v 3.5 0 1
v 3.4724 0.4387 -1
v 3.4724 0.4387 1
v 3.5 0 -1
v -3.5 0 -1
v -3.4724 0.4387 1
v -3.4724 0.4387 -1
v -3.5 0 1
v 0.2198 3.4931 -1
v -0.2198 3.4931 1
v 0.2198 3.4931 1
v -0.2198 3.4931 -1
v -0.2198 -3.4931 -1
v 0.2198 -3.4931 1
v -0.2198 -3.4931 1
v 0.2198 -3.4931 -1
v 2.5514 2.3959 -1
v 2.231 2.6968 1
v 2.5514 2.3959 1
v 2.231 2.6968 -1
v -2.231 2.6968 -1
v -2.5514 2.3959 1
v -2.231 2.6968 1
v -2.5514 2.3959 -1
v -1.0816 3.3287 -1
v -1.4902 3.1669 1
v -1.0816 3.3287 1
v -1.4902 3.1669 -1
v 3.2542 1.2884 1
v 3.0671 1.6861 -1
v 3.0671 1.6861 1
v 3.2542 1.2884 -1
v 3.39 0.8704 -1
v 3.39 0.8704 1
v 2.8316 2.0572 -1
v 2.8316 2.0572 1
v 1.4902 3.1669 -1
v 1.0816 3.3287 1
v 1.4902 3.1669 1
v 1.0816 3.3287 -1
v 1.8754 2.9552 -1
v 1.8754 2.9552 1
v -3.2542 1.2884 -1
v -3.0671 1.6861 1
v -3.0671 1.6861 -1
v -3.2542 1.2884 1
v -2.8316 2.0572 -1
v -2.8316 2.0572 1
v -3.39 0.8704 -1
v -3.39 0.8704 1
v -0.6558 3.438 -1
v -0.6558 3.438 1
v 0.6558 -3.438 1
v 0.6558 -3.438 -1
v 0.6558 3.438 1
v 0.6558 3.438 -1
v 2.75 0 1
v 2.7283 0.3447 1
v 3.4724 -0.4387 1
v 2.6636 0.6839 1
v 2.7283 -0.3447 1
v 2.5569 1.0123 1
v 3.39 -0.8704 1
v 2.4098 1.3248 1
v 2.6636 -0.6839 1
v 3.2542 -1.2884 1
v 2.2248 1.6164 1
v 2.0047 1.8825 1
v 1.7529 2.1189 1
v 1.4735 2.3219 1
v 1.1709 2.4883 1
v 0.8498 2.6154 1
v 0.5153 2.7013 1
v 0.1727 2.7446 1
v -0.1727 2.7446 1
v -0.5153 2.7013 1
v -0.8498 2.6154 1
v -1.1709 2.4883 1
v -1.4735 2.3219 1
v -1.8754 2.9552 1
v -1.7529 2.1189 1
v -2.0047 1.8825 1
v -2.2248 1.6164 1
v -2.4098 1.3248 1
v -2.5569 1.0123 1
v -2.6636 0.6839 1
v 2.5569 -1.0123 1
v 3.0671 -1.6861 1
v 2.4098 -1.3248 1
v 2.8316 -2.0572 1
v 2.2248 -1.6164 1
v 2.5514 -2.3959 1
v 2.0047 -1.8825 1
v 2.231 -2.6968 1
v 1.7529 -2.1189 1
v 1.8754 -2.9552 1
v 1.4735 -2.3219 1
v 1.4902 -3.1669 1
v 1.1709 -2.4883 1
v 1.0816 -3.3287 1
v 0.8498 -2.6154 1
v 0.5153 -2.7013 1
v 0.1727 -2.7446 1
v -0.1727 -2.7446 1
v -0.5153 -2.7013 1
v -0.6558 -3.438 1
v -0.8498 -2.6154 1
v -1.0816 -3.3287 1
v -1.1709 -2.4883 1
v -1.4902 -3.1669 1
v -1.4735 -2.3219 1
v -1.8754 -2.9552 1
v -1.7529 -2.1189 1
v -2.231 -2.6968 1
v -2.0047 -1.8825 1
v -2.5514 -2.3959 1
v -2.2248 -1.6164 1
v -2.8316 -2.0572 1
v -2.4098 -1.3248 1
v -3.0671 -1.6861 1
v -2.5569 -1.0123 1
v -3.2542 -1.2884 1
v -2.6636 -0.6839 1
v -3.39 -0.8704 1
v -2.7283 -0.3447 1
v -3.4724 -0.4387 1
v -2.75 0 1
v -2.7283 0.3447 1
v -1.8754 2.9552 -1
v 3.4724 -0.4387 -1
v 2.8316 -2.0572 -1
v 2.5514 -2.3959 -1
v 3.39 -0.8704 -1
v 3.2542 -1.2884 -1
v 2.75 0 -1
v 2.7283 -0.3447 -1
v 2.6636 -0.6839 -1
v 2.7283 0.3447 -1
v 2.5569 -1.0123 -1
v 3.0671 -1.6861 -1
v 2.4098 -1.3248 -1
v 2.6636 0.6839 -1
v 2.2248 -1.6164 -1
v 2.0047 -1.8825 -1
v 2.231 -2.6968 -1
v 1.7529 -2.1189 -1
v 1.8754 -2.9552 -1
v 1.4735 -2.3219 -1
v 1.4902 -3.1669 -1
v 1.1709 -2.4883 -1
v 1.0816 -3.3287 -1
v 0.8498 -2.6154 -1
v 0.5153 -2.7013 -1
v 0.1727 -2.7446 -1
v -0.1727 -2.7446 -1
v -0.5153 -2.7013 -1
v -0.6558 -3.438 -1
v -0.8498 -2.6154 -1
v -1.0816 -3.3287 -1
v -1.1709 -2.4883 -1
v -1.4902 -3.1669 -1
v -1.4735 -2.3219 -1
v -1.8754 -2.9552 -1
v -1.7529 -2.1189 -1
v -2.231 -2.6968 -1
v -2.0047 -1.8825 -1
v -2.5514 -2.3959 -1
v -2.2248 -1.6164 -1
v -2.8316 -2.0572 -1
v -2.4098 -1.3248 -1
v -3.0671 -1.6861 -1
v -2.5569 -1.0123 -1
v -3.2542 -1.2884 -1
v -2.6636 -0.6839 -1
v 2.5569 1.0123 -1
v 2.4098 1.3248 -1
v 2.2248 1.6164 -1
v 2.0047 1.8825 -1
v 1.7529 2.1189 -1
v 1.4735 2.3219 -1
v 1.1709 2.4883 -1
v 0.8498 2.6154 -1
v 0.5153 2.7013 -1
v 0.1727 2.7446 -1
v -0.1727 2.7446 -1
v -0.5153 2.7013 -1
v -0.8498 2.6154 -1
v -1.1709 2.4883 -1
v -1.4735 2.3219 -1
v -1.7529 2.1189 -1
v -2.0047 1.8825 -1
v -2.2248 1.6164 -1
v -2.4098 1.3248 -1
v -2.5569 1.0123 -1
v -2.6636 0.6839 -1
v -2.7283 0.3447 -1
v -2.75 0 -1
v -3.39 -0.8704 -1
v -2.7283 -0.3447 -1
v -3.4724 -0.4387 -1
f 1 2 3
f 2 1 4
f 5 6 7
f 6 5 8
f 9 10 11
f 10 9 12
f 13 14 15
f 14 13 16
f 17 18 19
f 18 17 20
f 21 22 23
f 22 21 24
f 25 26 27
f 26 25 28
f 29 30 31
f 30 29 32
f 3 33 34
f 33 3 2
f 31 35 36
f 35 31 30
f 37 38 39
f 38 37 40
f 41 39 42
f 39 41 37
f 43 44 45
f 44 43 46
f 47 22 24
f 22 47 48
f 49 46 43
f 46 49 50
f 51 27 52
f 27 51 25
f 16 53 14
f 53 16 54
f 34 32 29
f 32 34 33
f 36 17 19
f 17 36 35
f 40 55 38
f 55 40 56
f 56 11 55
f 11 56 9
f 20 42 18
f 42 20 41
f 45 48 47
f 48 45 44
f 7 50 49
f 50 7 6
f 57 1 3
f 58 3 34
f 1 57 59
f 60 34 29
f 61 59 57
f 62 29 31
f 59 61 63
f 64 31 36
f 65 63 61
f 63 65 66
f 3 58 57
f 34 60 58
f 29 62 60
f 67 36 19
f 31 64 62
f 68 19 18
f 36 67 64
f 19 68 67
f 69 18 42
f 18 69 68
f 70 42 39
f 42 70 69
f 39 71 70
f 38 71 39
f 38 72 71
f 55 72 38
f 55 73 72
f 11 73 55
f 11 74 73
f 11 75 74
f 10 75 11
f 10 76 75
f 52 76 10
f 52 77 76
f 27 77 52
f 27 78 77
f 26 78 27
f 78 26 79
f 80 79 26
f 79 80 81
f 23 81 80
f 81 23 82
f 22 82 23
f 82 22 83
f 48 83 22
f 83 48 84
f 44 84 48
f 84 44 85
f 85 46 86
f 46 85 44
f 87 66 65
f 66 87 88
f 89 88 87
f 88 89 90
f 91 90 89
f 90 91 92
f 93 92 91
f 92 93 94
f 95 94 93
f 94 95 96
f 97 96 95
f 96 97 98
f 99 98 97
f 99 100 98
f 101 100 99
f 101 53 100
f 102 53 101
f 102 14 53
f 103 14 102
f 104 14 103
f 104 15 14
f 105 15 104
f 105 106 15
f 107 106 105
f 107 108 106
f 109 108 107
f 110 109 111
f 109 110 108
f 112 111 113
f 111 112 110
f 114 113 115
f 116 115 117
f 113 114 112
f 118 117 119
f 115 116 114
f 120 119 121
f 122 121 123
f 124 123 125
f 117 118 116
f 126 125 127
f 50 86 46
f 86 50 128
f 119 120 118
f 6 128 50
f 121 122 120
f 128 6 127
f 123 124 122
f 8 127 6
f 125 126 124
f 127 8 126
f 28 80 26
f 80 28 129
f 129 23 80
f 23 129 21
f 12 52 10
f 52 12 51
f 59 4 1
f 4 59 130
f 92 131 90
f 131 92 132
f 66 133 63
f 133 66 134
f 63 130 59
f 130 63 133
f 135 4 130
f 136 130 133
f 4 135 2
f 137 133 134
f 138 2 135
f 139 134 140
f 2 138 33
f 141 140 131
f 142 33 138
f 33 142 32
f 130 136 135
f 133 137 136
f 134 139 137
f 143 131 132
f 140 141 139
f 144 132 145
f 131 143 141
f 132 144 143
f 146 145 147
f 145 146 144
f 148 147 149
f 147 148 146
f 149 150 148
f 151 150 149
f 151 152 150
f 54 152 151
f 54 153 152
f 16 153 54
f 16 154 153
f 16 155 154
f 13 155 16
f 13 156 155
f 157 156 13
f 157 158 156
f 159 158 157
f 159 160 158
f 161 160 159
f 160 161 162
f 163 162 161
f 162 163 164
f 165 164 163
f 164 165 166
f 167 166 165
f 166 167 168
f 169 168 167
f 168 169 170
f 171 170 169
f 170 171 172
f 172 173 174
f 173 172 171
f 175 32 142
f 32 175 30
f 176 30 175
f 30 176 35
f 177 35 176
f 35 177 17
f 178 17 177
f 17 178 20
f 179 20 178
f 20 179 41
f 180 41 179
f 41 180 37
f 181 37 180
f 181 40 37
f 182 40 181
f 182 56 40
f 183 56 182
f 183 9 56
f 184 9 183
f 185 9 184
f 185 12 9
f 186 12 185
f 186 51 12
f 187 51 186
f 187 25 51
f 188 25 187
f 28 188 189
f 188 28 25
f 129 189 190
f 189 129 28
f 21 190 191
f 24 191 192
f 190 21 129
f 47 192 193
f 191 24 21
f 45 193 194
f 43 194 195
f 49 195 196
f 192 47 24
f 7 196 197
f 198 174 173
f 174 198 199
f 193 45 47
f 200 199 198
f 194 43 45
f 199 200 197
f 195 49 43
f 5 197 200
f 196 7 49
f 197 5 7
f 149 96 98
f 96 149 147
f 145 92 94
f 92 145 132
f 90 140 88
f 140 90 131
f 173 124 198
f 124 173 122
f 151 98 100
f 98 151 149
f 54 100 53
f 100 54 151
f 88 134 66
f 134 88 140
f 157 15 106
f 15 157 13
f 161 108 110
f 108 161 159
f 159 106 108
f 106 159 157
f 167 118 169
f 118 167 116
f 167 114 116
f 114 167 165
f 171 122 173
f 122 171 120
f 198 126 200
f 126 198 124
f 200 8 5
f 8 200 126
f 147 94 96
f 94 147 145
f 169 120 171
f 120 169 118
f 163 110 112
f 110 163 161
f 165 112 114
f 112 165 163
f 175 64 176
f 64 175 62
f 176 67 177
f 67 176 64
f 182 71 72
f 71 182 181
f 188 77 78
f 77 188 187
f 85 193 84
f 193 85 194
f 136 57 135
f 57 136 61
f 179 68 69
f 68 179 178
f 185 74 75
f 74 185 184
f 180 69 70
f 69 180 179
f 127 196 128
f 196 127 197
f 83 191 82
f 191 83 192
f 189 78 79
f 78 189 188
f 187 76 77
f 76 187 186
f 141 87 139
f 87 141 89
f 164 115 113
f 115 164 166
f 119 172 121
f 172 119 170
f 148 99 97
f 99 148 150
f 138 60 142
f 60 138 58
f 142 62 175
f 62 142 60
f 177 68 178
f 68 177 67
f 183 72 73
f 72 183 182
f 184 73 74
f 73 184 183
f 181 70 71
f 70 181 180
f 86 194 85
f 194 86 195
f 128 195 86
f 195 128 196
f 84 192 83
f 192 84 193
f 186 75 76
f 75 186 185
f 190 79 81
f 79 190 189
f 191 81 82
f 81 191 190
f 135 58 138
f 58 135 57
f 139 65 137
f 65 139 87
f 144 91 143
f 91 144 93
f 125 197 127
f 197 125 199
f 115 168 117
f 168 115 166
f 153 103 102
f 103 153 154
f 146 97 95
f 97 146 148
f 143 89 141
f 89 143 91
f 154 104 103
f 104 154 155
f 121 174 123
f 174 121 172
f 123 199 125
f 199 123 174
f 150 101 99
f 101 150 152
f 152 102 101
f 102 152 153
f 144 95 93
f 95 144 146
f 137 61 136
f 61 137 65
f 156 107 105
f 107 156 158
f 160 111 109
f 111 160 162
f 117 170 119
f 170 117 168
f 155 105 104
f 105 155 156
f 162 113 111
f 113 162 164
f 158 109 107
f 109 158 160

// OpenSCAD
$fn = 50;


difference() {
	union() {
		translate(v = [0, 0, -1.0000000000]) {
			cylinder(h = 2, r = 3.5000000000);
		}
	}
	union() {
		translate(v = [0, 0, -100.0000000000]) {
			cylinder(h = 200, r = 2.7500000000);
		}
	}
}
